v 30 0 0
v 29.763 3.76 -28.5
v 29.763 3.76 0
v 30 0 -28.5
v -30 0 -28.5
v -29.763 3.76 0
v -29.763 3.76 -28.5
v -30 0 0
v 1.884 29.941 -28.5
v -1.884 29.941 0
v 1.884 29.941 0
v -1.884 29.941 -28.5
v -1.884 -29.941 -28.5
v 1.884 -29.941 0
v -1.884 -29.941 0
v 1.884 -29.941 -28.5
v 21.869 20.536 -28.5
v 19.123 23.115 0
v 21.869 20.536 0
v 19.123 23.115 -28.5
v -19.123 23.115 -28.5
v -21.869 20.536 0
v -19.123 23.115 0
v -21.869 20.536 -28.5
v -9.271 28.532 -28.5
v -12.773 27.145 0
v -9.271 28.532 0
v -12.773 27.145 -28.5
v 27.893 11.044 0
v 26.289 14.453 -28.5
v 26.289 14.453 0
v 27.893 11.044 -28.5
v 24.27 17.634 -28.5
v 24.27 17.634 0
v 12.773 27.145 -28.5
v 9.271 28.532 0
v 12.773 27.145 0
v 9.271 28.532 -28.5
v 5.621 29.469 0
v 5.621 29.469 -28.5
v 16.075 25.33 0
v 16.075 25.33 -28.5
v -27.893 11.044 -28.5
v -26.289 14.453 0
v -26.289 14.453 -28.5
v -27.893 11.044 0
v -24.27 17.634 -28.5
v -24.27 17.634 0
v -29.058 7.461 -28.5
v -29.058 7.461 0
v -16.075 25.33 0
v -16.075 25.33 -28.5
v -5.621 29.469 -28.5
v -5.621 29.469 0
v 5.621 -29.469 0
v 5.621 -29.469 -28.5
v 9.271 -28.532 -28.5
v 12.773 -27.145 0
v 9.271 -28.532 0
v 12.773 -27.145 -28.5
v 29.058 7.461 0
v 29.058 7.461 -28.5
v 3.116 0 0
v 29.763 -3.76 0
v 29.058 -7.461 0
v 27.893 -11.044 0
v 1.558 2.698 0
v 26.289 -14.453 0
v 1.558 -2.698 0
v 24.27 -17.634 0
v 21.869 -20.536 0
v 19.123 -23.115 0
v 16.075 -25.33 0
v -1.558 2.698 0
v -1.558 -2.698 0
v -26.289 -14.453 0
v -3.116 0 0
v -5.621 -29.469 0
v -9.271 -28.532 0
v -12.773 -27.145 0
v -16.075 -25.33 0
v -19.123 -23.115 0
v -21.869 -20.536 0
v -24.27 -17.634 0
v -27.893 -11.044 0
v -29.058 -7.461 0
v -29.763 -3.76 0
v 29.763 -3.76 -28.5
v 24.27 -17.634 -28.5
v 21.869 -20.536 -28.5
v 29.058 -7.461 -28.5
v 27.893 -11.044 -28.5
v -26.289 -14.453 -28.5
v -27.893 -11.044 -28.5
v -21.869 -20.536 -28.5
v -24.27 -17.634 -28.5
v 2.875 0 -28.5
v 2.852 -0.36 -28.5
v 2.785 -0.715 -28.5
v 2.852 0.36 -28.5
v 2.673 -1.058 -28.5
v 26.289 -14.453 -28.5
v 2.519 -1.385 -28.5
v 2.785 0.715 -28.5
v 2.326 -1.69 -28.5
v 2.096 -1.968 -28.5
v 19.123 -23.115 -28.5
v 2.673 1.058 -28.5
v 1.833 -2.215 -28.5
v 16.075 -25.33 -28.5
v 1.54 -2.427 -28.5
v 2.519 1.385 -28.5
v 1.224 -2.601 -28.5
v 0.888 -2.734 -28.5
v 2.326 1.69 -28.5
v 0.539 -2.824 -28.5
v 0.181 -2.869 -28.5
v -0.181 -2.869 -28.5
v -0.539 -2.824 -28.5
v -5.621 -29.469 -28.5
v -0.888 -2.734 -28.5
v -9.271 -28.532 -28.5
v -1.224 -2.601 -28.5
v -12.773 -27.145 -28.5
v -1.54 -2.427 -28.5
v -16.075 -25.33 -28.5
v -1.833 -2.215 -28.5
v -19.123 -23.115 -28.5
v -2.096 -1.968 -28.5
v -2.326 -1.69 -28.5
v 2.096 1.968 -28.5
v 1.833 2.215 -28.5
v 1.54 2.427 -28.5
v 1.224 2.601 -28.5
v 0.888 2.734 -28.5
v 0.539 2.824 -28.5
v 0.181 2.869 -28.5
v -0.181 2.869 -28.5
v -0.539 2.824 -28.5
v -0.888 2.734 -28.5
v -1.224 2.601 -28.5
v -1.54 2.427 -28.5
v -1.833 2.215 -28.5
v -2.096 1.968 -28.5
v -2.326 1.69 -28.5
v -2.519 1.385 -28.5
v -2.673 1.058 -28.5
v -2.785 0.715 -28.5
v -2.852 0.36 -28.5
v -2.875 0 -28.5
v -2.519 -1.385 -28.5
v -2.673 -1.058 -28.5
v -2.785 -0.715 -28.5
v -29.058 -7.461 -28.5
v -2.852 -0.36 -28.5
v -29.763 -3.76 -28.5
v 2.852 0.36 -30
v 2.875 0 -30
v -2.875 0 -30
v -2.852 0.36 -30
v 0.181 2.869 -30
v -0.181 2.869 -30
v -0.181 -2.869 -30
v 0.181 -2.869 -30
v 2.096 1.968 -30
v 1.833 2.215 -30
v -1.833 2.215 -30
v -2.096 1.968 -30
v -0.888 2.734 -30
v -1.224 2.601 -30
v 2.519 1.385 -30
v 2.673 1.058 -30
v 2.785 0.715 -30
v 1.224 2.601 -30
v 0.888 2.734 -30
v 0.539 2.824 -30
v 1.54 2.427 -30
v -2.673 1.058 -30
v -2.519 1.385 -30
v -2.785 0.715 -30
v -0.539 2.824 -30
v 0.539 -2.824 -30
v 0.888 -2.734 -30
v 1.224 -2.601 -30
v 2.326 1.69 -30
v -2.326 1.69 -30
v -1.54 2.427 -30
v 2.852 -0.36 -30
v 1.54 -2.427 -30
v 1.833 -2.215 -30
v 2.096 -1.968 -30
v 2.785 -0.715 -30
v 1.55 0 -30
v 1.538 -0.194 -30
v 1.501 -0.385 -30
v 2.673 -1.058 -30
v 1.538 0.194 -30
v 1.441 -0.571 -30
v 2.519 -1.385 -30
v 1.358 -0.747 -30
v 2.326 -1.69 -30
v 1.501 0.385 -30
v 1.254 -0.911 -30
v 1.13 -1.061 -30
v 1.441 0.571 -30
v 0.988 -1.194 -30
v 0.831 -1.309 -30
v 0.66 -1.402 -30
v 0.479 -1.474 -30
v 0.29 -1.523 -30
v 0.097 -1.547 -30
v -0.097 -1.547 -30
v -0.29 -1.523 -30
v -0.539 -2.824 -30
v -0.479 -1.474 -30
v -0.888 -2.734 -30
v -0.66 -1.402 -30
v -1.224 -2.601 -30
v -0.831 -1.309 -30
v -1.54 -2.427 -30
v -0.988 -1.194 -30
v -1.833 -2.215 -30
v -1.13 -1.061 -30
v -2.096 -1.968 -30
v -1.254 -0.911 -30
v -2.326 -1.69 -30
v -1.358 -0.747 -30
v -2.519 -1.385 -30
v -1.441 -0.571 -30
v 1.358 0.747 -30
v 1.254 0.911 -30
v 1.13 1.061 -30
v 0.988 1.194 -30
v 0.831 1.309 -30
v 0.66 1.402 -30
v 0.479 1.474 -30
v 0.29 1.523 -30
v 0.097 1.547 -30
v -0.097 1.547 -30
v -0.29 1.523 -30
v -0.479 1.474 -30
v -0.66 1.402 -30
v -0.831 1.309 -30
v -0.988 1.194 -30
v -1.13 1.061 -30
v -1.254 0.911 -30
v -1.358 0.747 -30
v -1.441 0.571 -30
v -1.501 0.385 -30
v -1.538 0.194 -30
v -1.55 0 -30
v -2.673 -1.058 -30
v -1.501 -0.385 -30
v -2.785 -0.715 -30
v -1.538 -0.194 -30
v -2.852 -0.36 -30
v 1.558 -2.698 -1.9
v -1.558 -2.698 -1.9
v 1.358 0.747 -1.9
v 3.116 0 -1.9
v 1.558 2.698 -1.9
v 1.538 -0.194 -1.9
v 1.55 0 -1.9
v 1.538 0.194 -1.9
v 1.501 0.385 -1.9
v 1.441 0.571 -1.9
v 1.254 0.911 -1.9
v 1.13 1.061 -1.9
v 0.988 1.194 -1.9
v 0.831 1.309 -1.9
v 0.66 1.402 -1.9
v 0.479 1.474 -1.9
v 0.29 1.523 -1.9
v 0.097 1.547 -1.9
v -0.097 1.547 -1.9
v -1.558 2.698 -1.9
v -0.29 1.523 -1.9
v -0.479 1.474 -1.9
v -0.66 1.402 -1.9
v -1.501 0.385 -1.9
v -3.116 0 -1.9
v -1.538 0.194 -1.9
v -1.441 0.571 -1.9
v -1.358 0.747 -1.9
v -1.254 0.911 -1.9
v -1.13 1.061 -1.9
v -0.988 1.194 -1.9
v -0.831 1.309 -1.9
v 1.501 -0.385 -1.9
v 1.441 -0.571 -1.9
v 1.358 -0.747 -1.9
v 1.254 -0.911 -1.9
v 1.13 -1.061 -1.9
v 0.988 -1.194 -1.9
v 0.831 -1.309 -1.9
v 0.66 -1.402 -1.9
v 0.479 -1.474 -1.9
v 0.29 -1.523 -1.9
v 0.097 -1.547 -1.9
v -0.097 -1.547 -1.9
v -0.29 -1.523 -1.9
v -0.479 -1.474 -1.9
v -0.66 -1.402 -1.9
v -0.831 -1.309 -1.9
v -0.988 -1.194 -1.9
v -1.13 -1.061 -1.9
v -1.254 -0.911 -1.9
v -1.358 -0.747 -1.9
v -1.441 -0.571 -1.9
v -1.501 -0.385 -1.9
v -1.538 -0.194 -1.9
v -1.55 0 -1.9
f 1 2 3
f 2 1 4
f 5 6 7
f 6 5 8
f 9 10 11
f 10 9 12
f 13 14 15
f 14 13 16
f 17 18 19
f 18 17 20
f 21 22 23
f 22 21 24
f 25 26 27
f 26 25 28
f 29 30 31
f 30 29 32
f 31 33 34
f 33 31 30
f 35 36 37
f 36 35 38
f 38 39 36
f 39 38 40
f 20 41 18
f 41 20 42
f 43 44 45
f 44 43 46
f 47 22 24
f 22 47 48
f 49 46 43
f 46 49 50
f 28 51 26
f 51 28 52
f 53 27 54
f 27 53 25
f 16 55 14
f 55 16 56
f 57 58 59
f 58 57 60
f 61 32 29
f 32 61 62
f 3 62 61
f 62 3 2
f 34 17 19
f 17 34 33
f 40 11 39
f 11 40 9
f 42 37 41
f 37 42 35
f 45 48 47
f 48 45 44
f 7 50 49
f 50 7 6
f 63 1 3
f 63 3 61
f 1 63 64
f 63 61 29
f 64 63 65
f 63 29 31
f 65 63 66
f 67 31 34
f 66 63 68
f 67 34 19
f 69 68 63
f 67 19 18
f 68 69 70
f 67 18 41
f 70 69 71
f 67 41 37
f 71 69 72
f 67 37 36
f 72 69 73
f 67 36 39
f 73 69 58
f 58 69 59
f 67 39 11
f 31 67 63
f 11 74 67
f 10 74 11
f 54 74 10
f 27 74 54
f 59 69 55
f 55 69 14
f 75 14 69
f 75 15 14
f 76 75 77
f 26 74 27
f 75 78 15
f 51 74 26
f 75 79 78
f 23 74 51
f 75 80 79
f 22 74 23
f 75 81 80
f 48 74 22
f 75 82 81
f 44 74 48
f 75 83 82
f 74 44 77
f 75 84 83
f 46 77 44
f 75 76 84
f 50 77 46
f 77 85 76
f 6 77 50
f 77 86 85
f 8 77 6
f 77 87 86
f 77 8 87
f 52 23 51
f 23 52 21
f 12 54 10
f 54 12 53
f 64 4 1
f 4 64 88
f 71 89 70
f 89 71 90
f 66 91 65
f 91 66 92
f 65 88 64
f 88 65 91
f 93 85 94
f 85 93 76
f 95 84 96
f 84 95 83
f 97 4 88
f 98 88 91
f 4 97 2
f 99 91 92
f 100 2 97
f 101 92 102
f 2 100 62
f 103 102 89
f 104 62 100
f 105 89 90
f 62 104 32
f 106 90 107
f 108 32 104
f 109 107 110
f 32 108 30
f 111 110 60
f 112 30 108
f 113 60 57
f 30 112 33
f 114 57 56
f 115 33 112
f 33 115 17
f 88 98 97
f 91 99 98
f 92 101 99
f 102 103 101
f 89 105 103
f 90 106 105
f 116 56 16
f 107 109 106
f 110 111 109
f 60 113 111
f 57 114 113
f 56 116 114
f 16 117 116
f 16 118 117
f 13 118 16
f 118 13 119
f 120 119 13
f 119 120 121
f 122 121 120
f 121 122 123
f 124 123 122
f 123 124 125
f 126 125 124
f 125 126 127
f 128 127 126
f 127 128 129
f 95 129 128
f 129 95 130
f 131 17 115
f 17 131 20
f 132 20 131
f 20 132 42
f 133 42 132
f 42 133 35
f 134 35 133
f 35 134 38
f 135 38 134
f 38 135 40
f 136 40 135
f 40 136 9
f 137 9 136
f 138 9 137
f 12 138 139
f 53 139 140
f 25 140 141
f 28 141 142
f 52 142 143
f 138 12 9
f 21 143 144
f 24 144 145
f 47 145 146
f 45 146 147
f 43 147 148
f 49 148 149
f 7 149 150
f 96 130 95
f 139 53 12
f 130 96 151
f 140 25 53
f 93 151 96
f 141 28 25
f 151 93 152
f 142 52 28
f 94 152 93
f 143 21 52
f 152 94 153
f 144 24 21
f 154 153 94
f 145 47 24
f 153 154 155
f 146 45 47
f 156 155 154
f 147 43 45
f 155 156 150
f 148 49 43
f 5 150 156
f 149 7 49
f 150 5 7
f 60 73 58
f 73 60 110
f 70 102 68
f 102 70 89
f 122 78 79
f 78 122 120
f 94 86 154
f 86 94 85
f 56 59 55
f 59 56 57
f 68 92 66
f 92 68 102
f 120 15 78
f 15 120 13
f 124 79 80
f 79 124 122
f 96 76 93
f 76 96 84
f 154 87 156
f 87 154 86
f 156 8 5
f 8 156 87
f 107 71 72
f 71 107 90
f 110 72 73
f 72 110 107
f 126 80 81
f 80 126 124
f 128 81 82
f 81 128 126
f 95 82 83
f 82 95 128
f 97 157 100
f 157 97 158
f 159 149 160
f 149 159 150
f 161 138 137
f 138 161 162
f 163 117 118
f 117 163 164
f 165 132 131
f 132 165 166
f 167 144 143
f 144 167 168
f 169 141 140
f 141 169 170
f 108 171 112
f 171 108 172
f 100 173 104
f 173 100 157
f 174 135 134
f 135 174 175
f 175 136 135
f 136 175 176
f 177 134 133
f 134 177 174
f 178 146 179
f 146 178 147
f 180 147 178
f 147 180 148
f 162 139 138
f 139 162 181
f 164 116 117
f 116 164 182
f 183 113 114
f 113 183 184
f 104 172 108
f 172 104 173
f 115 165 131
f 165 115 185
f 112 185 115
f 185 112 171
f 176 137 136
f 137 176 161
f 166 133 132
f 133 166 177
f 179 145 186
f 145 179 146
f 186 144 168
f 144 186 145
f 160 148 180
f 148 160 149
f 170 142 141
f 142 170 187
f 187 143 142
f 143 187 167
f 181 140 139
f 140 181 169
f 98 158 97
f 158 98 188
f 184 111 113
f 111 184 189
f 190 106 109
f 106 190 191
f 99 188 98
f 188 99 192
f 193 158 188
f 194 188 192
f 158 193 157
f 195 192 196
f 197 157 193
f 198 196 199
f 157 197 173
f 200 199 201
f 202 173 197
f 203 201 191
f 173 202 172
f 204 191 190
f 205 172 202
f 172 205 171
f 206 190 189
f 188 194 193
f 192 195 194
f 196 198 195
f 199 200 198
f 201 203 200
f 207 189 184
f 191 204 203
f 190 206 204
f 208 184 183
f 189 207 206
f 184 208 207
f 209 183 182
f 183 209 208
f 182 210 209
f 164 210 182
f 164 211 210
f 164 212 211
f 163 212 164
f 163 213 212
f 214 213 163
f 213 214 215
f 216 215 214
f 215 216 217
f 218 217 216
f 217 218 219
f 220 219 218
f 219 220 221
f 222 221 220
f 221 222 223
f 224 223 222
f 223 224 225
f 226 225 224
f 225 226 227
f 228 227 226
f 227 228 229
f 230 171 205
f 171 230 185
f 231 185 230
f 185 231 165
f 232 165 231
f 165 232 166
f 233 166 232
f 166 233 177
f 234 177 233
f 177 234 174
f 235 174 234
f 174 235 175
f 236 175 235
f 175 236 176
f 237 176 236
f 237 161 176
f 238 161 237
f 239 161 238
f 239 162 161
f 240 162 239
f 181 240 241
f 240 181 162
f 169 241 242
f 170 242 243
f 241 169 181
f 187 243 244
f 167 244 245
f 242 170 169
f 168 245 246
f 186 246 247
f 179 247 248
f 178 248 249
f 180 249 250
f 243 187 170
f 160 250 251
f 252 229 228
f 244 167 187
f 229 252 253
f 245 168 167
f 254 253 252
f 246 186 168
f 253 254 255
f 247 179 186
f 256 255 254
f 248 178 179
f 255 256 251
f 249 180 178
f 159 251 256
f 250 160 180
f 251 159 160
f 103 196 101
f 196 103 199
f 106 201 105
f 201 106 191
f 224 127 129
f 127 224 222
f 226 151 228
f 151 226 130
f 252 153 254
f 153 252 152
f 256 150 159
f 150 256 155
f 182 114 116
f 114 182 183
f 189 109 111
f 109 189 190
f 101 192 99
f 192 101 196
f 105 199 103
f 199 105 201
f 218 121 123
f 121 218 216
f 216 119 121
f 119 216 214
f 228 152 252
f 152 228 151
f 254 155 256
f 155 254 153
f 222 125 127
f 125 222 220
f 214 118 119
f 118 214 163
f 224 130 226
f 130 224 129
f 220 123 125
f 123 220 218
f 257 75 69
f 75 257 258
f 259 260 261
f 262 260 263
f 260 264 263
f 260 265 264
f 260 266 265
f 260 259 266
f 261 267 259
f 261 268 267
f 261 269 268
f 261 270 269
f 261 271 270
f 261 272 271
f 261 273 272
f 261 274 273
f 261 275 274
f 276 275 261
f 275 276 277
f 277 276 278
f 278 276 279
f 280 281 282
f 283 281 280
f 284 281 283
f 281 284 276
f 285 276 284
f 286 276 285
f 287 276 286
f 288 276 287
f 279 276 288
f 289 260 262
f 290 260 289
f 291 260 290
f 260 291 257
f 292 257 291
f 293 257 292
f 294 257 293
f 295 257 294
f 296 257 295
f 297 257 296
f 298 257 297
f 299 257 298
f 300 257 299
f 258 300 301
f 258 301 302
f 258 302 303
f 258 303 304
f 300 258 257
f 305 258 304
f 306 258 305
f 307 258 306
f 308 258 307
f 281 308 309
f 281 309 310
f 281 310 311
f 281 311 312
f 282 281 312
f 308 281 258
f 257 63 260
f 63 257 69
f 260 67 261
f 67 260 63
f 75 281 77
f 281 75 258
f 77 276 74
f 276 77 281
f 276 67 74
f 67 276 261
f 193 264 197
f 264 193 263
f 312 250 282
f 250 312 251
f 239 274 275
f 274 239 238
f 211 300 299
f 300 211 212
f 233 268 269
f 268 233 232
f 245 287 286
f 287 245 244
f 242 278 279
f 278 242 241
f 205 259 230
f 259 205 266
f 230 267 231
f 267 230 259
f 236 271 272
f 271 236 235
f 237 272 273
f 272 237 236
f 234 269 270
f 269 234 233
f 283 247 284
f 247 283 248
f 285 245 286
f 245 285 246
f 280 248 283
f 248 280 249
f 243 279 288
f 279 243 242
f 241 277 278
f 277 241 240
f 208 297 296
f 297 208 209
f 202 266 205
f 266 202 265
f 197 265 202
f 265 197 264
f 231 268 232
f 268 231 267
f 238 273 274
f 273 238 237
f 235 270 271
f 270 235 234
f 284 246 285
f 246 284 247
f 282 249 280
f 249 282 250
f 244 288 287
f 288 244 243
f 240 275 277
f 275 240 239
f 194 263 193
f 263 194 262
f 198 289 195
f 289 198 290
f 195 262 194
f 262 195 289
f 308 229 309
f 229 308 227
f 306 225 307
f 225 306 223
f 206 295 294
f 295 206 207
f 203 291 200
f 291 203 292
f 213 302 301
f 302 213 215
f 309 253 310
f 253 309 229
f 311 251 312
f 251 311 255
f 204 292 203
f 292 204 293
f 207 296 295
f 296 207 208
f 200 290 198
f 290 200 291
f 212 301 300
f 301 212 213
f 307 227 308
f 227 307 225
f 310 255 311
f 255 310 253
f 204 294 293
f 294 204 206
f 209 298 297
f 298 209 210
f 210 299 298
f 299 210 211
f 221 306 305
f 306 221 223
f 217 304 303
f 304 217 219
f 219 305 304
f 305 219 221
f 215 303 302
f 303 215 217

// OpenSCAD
$fn = 50;

difference() {
	union() {
		translate(v = [0, 0, -28.5]) {
			cylinder(h = 28.5, r = 30.0);
		}
		#translate(v = [0, 0, -30.0]) {
			cylinder(h = 30, r = 2.875);
		}
	}
	union() {
		translate(v = [0, 0, 0]) {
			rotate(a = [0, 0, 0]) {
				difference() {
					union() {
						translate(v = [0, 0, -1.9]) {
							linear_extrude(height = 1.9) {
								polygon(points = [[3.1158, 0.0], [1.5579000000000005, 2.698361953111554], [-1.5578999999999994, 2.6983619531115544], [-3.1158, 3.815754496783323e-16], [-1.5579000000000014, -2.6983619531115535], [1.557899999999998, -2.6983619531115552]]);
							}
						}
					}
					union();
				}
			}
		}
		#translate(v = [0, 0, -100.0]) {
			cylinder(h = 200, r = 1.55);
		}
	}
}
